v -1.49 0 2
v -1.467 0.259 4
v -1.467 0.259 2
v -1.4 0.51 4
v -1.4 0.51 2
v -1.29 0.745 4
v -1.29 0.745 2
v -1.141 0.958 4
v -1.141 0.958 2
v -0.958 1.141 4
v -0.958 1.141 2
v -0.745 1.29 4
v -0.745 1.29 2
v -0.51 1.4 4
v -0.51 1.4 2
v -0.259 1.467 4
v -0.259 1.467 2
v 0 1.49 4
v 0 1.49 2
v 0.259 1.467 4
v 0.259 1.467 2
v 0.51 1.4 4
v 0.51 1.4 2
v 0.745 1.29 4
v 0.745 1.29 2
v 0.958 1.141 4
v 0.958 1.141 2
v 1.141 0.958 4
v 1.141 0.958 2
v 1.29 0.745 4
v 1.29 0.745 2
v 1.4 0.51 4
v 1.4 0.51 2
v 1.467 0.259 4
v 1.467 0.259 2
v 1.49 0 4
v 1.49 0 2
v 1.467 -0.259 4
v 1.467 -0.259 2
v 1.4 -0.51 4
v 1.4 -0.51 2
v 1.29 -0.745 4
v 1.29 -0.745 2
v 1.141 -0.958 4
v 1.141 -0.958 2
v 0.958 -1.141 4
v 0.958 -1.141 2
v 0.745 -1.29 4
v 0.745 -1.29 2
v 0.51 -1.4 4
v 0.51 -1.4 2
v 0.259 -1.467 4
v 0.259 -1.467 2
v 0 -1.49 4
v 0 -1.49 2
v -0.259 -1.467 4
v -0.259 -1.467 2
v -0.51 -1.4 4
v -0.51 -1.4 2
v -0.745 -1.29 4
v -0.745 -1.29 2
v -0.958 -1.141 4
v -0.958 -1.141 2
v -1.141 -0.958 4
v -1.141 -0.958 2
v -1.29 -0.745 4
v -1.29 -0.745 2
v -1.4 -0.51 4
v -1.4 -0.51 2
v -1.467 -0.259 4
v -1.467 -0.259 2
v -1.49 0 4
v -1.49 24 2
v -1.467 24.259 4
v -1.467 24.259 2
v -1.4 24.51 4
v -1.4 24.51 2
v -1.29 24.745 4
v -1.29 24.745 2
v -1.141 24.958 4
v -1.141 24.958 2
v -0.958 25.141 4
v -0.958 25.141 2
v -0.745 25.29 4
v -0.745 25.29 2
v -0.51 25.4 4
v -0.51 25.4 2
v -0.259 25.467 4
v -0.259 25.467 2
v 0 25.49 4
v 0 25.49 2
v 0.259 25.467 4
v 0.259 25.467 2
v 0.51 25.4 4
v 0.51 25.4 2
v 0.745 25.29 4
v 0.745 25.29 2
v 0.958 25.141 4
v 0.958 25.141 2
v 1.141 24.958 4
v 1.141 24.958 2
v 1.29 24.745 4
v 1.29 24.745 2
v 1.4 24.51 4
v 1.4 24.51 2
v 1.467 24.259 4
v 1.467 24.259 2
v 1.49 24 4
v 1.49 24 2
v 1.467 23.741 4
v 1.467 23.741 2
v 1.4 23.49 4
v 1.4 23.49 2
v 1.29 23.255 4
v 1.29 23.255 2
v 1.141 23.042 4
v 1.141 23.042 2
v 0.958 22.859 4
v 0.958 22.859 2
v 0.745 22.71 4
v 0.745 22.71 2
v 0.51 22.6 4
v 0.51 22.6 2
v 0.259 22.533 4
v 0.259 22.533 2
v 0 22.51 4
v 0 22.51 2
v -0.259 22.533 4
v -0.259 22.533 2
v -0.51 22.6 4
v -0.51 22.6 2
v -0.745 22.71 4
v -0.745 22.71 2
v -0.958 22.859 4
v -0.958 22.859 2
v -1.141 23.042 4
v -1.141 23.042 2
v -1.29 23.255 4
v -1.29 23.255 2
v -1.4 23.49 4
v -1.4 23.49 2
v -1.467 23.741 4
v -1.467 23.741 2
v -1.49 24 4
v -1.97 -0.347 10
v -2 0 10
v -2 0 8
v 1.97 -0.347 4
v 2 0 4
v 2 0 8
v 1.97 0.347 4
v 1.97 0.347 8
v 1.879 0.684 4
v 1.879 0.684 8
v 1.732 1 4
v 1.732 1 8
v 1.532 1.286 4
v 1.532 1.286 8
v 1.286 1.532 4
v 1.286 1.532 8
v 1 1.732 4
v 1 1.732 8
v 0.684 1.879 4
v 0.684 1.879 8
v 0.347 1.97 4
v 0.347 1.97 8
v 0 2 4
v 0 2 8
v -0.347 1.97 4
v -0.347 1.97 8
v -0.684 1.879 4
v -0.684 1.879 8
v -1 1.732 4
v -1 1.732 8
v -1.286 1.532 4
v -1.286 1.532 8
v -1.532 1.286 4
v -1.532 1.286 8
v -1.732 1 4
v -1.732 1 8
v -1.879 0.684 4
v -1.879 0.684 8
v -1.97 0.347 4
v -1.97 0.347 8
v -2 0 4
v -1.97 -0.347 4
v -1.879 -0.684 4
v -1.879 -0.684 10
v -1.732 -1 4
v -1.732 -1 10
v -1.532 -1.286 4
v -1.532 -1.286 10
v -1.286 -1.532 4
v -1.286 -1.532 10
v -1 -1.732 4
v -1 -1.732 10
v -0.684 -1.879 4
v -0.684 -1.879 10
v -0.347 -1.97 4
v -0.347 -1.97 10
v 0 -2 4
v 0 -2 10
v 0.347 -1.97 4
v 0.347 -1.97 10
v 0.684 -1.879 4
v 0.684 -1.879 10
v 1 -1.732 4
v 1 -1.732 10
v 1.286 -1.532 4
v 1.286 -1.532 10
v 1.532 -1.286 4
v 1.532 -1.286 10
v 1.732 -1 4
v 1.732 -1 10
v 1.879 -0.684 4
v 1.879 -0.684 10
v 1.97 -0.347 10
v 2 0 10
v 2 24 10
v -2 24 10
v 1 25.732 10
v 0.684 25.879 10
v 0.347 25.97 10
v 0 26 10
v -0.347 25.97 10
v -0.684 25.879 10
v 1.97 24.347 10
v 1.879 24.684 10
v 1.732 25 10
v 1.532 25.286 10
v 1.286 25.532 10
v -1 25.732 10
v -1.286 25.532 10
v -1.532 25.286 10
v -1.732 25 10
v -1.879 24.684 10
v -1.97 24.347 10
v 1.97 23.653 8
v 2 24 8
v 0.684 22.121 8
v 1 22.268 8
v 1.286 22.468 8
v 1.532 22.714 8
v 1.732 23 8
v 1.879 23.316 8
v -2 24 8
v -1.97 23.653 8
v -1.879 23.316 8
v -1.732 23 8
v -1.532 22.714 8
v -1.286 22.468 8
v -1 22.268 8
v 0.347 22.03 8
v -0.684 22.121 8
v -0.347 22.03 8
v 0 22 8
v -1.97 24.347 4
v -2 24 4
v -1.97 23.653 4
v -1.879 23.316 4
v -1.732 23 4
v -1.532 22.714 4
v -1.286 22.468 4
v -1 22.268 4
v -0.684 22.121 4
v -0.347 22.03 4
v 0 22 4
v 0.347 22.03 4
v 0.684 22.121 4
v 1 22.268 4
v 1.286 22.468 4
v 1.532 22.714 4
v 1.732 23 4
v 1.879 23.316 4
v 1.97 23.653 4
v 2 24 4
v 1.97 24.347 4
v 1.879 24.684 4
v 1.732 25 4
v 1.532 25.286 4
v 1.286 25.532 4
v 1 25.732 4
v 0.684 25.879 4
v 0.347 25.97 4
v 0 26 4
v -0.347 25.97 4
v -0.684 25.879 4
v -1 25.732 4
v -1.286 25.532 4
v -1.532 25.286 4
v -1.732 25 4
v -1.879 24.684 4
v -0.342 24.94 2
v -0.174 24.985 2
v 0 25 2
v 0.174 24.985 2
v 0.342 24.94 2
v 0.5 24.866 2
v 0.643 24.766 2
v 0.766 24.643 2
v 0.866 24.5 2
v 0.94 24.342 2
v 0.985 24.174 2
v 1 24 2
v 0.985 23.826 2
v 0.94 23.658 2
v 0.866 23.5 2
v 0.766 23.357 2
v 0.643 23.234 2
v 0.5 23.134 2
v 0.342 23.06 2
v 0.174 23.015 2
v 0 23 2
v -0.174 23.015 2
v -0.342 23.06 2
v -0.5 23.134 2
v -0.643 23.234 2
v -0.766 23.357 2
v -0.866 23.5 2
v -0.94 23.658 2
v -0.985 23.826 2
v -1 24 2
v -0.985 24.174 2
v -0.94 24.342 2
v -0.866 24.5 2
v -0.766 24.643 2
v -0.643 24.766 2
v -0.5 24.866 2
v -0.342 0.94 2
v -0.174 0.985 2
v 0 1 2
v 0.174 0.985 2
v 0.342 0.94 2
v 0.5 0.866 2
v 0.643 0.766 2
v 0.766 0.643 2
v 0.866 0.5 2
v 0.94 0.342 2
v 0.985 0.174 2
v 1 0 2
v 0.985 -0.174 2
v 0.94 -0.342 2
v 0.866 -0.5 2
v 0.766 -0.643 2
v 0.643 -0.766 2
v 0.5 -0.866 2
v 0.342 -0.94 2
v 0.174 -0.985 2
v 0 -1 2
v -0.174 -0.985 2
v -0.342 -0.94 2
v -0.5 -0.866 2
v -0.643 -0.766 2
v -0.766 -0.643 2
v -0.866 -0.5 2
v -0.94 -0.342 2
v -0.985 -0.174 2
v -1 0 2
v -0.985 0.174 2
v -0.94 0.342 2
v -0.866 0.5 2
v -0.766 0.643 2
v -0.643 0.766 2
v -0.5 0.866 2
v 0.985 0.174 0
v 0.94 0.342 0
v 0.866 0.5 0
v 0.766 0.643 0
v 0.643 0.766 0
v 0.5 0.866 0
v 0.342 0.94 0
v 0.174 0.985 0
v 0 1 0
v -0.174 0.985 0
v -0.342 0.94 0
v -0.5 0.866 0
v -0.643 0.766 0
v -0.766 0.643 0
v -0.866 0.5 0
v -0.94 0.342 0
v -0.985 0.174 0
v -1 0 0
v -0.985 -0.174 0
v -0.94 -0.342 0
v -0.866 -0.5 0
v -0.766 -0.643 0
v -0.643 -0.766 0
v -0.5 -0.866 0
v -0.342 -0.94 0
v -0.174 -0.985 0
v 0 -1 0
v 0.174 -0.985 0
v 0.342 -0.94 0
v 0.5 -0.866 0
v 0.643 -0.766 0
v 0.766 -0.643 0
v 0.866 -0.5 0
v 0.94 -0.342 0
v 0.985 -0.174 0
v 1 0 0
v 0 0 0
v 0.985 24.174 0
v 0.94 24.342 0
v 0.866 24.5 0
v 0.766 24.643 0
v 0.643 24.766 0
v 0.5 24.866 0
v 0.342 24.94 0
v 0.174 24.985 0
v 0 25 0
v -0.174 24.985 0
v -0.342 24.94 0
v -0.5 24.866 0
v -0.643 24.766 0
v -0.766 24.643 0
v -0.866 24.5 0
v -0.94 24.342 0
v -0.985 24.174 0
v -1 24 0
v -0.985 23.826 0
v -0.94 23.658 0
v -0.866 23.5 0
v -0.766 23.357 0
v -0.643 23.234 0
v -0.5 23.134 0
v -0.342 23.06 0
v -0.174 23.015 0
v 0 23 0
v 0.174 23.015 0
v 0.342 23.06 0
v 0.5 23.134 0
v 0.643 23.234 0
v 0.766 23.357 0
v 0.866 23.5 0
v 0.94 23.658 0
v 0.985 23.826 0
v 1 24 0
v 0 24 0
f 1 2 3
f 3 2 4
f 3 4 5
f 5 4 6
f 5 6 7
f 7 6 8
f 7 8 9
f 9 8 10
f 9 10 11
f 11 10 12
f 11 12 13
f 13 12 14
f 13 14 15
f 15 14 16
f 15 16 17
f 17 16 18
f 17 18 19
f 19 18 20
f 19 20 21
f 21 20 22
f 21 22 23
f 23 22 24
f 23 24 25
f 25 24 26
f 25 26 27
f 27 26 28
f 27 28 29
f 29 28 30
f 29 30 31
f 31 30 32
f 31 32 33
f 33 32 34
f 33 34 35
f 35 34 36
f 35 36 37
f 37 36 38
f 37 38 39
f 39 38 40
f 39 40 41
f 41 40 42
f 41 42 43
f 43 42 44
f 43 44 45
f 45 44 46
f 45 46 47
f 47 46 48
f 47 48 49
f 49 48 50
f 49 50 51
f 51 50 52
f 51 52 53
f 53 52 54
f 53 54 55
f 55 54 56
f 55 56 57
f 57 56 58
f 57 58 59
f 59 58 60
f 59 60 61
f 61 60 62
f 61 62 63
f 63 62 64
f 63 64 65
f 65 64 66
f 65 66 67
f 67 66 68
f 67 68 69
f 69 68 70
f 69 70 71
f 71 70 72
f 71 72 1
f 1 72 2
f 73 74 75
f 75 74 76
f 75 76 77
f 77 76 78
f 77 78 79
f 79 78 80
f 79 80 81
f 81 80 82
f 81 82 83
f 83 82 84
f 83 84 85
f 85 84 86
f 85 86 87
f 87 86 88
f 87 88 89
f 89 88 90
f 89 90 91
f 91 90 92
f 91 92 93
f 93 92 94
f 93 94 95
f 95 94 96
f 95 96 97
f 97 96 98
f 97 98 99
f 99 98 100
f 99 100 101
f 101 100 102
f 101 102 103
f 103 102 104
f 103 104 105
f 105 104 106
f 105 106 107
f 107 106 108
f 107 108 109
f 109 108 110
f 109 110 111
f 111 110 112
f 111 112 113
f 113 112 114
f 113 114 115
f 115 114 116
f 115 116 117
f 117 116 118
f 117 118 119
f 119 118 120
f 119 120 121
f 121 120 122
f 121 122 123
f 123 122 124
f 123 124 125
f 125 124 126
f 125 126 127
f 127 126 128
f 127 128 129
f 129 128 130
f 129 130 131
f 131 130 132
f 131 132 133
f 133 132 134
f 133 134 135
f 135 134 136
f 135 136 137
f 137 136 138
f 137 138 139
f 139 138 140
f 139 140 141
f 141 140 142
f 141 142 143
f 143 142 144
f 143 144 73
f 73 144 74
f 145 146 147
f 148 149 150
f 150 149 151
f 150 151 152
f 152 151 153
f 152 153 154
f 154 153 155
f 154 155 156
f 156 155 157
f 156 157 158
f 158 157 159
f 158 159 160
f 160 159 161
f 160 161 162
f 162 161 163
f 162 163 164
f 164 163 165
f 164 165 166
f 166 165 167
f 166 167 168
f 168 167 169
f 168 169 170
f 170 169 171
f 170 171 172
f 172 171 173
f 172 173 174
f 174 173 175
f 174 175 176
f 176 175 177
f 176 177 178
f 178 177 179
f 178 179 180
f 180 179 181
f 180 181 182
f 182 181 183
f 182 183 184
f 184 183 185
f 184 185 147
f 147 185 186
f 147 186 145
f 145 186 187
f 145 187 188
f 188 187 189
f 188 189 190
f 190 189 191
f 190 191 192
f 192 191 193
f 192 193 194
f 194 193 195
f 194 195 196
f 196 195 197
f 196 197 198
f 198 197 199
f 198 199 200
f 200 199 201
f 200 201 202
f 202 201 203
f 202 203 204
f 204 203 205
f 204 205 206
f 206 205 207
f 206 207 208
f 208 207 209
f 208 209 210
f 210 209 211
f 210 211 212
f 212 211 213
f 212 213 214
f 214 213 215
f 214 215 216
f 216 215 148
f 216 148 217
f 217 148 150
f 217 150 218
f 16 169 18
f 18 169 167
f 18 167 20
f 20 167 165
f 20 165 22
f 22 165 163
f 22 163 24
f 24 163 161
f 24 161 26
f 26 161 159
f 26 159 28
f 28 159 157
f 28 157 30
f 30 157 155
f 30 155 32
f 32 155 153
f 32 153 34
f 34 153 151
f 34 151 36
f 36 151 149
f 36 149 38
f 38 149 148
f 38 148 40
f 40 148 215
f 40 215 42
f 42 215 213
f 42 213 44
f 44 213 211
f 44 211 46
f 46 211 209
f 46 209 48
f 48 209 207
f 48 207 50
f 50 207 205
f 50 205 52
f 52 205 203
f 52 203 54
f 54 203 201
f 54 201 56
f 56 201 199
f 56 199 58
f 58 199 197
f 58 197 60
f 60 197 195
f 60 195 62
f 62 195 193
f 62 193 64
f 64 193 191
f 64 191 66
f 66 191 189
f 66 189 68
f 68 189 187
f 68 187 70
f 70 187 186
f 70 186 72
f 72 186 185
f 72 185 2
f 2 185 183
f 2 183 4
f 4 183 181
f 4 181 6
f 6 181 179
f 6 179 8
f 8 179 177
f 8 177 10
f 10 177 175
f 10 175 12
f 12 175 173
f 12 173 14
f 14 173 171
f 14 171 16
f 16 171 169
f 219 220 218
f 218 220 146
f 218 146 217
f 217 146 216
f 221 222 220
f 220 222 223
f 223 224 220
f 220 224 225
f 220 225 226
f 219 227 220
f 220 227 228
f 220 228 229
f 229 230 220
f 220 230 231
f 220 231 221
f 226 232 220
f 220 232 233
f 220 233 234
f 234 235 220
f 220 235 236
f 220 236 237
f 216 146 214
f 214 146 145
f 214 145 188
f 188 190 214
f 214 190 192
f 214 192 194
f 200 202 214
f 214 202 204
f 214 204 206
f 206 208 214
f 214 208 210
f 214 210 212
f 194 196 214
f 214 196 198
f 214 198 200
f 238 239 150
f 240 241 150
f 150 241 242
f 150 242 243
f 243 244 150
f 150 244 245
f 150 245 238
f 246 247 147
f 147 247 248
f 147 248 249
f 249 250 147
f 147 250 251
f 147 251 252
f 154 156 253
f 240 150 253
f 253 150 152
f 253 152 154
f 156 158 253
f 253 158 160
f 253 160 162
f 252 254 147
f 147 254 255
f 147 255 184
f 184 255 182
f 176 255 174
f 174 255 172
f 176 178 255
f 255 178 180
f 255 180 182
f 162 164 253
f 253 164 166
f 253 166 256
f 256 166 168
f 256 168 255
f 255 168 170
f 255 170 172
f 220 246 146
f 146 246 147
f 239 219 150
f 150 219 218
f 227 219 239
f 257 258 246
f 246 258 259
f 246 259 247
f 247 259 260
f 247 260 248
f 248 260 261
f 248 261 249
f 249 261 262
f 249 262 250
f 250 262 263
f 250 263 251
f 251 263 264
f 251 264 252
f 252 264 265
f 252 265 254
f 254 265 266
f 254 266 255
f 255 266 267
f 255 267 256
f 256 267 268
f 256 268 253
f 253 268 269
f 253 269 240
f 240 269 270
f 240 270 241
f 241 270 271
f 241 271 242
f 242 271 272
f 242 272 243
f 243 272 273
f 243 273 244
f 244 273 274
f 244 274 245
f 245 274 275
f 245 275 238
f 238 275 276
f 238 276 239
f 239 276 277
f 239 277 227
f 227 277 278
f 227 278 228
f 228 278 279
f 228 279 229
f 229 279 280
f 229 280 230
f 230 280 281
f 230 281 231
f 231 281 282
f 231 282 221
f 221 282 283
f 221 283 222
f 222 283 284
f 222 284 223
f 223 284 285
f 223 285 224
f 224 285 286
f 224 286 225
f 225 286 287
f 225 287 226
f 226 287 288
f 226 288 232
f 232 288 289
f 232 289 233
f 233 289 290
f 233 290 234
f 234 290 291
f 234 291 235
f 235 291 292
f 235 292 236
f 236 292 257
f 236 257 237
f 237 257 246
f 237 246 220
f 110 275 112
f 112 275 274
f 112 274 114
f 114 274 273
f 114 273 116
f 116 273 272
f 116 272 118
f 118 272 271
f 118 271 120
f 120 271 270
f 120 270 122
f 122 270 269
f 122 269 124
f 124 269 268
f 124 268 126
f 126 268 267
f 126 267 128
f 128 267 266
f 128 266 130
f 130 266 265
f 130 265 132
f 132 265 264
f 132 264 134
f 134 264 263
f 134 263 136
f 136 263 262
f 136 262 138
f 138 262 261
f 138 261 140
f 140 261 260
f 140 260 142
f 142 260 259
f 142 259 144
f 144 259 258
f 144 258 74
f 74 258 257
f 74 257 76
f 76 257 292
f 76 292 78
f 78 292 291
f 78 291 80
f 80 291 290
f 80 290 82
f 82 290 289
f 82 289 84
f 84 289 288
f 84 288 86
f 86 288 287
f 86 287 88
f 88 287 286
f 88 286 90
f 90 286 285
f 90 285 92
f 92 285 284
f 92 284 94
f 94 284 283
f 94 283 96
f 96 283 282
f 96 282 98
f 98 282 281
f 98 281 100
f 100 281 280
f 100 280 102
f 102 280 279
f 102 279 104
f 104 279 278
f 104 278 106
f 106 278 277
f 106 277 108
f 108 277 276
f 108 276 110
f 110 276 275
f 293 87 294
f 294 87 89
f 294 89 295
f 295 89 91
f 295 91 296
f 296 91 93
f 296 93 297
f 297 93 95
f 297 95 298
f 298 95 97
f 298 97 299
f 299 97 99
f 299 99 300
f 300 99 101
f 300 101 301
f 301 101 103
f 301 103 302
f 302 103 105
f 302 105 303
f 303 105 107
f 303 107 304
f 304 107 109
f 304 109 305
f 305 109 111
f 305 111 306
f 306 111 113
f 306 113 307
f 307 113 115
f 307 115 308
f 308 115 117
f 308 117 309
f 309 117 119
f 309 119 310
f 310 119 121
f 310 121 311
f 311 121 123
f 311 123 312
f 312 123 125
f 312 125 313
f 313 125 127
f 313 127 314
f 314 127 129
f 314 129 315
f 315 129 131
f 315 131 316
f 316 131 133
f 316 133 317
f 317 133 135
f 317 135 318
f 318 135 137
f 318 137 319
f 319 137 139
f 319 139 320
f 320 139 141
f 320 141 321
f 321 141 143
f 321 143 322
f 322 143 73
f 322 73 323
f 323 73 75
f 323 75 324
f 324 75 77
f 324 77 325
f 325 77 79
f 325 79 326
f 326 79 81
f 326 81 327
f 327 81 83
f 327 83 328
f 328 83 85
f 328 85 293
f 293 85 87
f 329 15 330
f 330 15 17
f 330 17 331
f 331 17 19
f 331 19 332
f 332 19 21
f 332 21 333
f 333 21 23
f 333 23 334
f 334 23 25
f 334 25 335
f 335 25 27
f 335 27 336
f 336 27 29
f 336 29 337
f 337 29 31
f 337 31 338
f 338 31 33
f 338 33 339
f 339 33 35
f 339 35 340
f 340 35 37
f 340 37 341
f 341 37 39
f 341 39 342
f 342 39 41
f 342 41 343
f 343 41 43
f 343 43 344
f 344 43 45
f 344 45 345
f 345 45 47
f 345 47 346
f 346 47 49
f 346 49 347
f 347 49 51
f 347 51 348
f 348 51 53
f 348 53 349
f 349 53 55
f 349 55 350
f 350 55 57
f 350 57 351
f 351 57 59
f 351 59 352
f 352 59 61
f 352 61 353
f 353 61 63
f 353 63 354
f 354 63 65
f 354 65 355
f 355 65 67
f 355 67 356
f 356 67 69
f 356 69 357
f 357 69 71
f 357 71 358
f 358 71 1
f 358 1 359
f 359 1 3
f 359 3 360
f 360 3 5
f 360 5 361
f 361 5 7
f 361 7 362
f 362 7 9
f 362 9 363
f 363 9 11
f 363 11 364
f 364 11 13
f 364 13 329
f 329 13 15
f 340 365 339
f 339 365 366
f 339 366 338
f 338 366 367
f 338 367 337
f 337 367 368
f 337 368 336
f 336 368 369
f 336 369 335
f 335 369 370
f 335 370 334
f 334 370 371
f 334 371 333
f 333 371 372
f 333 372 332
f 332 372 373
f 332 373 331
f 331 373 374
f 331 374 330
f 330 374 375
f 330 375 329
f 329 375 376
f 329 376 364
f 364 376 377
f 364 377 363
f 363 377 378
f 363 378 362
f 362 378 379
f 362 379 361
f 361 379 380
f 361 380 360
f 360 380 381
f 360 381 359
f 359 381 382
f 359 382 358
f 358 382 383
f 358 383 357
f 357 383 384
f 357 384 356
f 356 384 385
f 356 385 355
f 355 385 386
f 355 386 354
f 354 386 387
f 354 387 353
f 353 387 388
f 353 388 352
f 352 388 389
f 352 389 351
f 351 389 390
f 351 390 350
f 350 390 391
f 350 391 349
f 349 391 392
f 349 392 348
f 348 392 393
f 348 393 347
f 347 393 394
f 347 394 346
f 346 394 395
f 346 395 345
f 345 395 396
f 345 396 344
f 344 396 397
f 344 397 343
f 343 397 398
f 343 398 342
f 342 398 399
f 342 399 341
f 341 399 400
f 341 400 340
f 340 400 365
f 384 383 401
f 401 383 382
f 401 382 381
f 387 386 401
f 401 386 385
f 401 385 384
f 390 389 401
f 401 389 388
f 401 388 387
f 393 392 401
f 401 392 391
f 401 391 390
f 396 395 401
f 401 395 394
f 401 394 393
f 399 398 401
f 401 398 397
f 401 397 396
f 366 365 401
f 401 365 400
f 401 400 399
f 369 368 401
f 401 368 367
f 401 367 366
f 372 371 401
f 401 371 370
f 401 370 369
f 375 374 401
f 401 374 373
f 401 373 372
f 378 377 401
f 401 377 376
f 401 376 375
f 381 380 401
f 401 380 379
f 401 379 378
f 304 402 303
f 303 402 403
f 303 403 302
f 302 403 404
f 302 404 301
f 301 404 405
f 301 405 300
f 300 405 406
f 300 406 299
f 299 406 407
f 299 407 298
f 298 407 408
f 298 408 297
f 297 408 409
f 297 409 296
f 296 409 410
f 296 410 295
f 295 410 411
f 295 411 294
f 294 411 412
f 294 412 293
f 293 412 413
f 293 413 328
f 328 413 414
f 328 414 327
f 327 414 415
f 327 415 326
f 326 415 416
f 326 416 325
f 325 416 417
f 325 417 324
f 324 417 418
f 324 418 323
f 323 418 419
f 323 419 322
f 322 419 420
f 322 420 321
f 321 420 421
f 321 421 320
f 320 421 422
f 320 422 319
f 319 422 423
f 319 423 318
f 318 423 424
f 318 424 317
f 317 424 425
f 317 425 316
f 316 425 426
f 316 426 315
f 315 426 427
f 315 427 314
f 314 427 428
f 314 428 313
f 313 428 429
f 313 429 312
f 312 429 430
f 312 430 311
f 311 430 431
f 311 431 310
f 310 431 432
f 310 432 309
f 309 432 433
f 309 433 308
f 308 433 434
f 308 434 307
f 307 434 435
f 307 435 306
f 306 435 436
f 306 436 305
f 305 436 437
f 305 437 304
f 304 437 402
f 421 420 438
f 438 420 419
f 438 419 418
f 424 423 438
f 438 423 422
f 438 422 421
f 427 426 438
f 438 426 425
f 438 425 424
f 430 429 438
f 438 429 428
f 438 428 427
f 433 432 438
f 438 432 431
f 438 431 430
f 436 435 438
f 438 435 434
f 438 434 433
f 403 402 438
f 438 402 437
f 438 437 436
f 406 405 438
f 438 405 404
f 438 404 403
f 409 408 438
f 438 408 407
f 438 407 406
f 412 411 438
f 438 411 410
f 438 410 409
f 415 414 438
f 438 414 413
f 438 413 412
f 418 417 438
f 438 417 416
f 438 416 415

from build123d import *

# Parameters (mm, degrees)
SKETCH_1_R                       = 1.49
EXTRUDE_1_DEPTH                  = 4
SKETCH_2_R                       = 2
EXTRUDE_2_DEPTH                  = 4
EXTRUDE_START                    = 4
SKETCH_3_R                       = 2
EXTRUDE_3_DEPTH                  = 4
SKETCH_4_W                       = 4
SKETCH_4_H                       = 2
EXTRUDE_4_DEPTH                  = 12
EXTRUDE_4_DIRECTION_2_REACH      = 10.485
EXTRUDE_4_DIRECTION_2_END_RADIUS = 2
SKETCH_6_W                       = 4
SKETCH_6_H                       = 2
EXTRUDE_5_DEPTH                  = 12
EXTRUDE_5_DIRECTION_2_REACH      = 16.56
EXTRUDE_5_DIRECTION_2_END_RADIUS = 2
CUT_EXTRUDE_1_DEPTH              = 12
CUT_EXTRUDE_1_DEPTH_BACK         = 12
SKETCH_7_W                       = 8
SKETCH_7_H                       = 28
SKETCH_8_R                       = 1
EXTRUDE_6_DEPTH                  = 2


with BuildPart() as part:
    # 草图1 → 凸台-拉伸1 (new body)
    with BuildSketch(Plane.XY):
        Circle(SKETCH_1_R)
    extrude(amount=EXTRUDE_1_DEPTH)

    # 草图2 → 凸台-拉伸2 (add)
    with BuildSketch(Plane(origin=(0, 0, 0), x_dir=(-1, 0, 0), z_dir=(0, 0, -1))):
        Circle(SKETCH_2_R)
    extrude(amount=EXTRUDE_2_DEPTH)

    # 草图3 → 凸台-拉伸3 (add)
    with BuildSketch(Plane.XY.offset(4).offset(EXTRUDE_START)):
        with Locations(Location((0, 0, 0), (0, 0, 180))):
            Circle(SKETCH_3_R)
    extrude(amount=-EXTRUDE_3_DEPTH)

    # 草图4 → 凸台-拉伸4 (add)
    with BuildSketch(Plane(origin=(0, 0, 0), x_dir=(1, 0, 0), z_dir=(0, 1, 0))):
        with Locations((0, 5)):
            Rectangle(SKETCH_4_W, SKETCH_4_H)
    extrude(amount=EXTRUDE_4_DEPTH)

    # 凸台-拉伸4 direction 2: up to this cylinder (the profile starts inside it)
    extrude_4_direction_2_end = Plane(origin=(0, 0, -5), z_dir=(0, 0, 1)) * Cylinder(EXTRUDE_4_DIRECTION_2_END_RADIUS, 25.97, mode=Mode.PRIVATE)
    # 草图4 → 凸台-拉伸4 direction 2 (add, up to the surface)
    with BuildSketch(Plane(origin=(0, 0, 0), x_dir=(1, 0, 0), z_dir=(0, 1, 0)), mode=Mode.PRIVATE) as extrude_4_direction_2_sk1:
        with Locations((0, 5)):
            Rectangle(SKETCH_4_W, SKETCH_4_H)
    extrude_4_direction_2_tool1 = extrude(extrude_4_direction_2_sk1.sketch, amount=-EXTRUDE_4_DIRECTION_2_REACH, mode=Mode.PRIVATE) & extrude_4_direction_2_end
    add(extrude_4_direction_2_tool1.solids().sort_by_distance((0, 0, -5))[0])

    # 草图6 → 凸台-拉伸5 (add)
    with BuildSketch(Plane(origin=(0, 0, 0), x_dir=(1, 0, 0), z_dir=(0, 1, 0))):
        with Locations((0, -9)):
            Rectangle(SKETCH_6_W, SKETCH_6_H)
    extrude(amount=EXTRUDE_5_DEPTH)

    # 凸台-拉伸5 direction 2: up to this cylinder (the profile starts inside it)
    extrude_5_direction_2_end = Plane(origin=(0, 0, 9), z_dir=(0, 0, -1)) * Cylinder(EXTRUDE_5_DIRECTION_2_END_RADIUS, 38.12, mode=Mode.PRIVATE)
    # 草图6 → 凸台-拉伸5 direction 2 (add, up to the surface)
    with BuildSketch(Plane(origin=(0, 0, 0), x_dir=(1, 0, 0), z_dir=(0, 1, 0)), mode=Mode.PRIVATE) as extrude_5_direction_2_sk1:
        with Locations((0, -9)):
            Rectangle(SKETCH_6_W, SKETCH_6_H)
    extrude_5_direction_2_tool1 = extrude(extrude_5_direction_2_sk1.sketch, amount=-EXTRUDE_5_DIRECTION_2_REACH, mode=Mode.PRIVATE) & extrude_5_direction_2_end
    add(extrude_5_direction_2_tool1.solids().sort_by_distance((0, 0, 9))[0])

    # 镜向2: part across plane


with BuildPart() as part_1:
    add(part.part)
    add(part.part.mirror(Plane.ZX.offset(12)))

    # 草图7 → 切除-拉伸1 (cut, two sides: drawn at the far end of the back side and taken through both)
    with BuildSketch(Plane(origin=(0, 0, 0), x_dir=(0, 0, -1), z_dir=(1, 0, 0)).offset(-CUT_EXTRUDE_1_DEPTH_BACK)):
        with Locations((2, 12)):
            Rectangle(SKETCH_7_W, SKETCH_7_H)
    extrude(amount=CUT_EXTRUDE_1_DEPTH + CUT_EXTRUDE_1_DEPTH_BACK, mode=Mode.SUBTRACT)

    # 草图8 → 凸台-拉伸6 (add)
    with BuildSketch(Plane(origin=(0, 0, 2), x_dir=(-1, 0, 0), z_dir=(0, 0, -1))):
        with Locations((0, 24)):
            Circle(SKETCH_8_R)
        Circle(SKETCH_8_R)
    extrude(amount=EXTRUDE_6_DEPTH)


solid = part_1.part
